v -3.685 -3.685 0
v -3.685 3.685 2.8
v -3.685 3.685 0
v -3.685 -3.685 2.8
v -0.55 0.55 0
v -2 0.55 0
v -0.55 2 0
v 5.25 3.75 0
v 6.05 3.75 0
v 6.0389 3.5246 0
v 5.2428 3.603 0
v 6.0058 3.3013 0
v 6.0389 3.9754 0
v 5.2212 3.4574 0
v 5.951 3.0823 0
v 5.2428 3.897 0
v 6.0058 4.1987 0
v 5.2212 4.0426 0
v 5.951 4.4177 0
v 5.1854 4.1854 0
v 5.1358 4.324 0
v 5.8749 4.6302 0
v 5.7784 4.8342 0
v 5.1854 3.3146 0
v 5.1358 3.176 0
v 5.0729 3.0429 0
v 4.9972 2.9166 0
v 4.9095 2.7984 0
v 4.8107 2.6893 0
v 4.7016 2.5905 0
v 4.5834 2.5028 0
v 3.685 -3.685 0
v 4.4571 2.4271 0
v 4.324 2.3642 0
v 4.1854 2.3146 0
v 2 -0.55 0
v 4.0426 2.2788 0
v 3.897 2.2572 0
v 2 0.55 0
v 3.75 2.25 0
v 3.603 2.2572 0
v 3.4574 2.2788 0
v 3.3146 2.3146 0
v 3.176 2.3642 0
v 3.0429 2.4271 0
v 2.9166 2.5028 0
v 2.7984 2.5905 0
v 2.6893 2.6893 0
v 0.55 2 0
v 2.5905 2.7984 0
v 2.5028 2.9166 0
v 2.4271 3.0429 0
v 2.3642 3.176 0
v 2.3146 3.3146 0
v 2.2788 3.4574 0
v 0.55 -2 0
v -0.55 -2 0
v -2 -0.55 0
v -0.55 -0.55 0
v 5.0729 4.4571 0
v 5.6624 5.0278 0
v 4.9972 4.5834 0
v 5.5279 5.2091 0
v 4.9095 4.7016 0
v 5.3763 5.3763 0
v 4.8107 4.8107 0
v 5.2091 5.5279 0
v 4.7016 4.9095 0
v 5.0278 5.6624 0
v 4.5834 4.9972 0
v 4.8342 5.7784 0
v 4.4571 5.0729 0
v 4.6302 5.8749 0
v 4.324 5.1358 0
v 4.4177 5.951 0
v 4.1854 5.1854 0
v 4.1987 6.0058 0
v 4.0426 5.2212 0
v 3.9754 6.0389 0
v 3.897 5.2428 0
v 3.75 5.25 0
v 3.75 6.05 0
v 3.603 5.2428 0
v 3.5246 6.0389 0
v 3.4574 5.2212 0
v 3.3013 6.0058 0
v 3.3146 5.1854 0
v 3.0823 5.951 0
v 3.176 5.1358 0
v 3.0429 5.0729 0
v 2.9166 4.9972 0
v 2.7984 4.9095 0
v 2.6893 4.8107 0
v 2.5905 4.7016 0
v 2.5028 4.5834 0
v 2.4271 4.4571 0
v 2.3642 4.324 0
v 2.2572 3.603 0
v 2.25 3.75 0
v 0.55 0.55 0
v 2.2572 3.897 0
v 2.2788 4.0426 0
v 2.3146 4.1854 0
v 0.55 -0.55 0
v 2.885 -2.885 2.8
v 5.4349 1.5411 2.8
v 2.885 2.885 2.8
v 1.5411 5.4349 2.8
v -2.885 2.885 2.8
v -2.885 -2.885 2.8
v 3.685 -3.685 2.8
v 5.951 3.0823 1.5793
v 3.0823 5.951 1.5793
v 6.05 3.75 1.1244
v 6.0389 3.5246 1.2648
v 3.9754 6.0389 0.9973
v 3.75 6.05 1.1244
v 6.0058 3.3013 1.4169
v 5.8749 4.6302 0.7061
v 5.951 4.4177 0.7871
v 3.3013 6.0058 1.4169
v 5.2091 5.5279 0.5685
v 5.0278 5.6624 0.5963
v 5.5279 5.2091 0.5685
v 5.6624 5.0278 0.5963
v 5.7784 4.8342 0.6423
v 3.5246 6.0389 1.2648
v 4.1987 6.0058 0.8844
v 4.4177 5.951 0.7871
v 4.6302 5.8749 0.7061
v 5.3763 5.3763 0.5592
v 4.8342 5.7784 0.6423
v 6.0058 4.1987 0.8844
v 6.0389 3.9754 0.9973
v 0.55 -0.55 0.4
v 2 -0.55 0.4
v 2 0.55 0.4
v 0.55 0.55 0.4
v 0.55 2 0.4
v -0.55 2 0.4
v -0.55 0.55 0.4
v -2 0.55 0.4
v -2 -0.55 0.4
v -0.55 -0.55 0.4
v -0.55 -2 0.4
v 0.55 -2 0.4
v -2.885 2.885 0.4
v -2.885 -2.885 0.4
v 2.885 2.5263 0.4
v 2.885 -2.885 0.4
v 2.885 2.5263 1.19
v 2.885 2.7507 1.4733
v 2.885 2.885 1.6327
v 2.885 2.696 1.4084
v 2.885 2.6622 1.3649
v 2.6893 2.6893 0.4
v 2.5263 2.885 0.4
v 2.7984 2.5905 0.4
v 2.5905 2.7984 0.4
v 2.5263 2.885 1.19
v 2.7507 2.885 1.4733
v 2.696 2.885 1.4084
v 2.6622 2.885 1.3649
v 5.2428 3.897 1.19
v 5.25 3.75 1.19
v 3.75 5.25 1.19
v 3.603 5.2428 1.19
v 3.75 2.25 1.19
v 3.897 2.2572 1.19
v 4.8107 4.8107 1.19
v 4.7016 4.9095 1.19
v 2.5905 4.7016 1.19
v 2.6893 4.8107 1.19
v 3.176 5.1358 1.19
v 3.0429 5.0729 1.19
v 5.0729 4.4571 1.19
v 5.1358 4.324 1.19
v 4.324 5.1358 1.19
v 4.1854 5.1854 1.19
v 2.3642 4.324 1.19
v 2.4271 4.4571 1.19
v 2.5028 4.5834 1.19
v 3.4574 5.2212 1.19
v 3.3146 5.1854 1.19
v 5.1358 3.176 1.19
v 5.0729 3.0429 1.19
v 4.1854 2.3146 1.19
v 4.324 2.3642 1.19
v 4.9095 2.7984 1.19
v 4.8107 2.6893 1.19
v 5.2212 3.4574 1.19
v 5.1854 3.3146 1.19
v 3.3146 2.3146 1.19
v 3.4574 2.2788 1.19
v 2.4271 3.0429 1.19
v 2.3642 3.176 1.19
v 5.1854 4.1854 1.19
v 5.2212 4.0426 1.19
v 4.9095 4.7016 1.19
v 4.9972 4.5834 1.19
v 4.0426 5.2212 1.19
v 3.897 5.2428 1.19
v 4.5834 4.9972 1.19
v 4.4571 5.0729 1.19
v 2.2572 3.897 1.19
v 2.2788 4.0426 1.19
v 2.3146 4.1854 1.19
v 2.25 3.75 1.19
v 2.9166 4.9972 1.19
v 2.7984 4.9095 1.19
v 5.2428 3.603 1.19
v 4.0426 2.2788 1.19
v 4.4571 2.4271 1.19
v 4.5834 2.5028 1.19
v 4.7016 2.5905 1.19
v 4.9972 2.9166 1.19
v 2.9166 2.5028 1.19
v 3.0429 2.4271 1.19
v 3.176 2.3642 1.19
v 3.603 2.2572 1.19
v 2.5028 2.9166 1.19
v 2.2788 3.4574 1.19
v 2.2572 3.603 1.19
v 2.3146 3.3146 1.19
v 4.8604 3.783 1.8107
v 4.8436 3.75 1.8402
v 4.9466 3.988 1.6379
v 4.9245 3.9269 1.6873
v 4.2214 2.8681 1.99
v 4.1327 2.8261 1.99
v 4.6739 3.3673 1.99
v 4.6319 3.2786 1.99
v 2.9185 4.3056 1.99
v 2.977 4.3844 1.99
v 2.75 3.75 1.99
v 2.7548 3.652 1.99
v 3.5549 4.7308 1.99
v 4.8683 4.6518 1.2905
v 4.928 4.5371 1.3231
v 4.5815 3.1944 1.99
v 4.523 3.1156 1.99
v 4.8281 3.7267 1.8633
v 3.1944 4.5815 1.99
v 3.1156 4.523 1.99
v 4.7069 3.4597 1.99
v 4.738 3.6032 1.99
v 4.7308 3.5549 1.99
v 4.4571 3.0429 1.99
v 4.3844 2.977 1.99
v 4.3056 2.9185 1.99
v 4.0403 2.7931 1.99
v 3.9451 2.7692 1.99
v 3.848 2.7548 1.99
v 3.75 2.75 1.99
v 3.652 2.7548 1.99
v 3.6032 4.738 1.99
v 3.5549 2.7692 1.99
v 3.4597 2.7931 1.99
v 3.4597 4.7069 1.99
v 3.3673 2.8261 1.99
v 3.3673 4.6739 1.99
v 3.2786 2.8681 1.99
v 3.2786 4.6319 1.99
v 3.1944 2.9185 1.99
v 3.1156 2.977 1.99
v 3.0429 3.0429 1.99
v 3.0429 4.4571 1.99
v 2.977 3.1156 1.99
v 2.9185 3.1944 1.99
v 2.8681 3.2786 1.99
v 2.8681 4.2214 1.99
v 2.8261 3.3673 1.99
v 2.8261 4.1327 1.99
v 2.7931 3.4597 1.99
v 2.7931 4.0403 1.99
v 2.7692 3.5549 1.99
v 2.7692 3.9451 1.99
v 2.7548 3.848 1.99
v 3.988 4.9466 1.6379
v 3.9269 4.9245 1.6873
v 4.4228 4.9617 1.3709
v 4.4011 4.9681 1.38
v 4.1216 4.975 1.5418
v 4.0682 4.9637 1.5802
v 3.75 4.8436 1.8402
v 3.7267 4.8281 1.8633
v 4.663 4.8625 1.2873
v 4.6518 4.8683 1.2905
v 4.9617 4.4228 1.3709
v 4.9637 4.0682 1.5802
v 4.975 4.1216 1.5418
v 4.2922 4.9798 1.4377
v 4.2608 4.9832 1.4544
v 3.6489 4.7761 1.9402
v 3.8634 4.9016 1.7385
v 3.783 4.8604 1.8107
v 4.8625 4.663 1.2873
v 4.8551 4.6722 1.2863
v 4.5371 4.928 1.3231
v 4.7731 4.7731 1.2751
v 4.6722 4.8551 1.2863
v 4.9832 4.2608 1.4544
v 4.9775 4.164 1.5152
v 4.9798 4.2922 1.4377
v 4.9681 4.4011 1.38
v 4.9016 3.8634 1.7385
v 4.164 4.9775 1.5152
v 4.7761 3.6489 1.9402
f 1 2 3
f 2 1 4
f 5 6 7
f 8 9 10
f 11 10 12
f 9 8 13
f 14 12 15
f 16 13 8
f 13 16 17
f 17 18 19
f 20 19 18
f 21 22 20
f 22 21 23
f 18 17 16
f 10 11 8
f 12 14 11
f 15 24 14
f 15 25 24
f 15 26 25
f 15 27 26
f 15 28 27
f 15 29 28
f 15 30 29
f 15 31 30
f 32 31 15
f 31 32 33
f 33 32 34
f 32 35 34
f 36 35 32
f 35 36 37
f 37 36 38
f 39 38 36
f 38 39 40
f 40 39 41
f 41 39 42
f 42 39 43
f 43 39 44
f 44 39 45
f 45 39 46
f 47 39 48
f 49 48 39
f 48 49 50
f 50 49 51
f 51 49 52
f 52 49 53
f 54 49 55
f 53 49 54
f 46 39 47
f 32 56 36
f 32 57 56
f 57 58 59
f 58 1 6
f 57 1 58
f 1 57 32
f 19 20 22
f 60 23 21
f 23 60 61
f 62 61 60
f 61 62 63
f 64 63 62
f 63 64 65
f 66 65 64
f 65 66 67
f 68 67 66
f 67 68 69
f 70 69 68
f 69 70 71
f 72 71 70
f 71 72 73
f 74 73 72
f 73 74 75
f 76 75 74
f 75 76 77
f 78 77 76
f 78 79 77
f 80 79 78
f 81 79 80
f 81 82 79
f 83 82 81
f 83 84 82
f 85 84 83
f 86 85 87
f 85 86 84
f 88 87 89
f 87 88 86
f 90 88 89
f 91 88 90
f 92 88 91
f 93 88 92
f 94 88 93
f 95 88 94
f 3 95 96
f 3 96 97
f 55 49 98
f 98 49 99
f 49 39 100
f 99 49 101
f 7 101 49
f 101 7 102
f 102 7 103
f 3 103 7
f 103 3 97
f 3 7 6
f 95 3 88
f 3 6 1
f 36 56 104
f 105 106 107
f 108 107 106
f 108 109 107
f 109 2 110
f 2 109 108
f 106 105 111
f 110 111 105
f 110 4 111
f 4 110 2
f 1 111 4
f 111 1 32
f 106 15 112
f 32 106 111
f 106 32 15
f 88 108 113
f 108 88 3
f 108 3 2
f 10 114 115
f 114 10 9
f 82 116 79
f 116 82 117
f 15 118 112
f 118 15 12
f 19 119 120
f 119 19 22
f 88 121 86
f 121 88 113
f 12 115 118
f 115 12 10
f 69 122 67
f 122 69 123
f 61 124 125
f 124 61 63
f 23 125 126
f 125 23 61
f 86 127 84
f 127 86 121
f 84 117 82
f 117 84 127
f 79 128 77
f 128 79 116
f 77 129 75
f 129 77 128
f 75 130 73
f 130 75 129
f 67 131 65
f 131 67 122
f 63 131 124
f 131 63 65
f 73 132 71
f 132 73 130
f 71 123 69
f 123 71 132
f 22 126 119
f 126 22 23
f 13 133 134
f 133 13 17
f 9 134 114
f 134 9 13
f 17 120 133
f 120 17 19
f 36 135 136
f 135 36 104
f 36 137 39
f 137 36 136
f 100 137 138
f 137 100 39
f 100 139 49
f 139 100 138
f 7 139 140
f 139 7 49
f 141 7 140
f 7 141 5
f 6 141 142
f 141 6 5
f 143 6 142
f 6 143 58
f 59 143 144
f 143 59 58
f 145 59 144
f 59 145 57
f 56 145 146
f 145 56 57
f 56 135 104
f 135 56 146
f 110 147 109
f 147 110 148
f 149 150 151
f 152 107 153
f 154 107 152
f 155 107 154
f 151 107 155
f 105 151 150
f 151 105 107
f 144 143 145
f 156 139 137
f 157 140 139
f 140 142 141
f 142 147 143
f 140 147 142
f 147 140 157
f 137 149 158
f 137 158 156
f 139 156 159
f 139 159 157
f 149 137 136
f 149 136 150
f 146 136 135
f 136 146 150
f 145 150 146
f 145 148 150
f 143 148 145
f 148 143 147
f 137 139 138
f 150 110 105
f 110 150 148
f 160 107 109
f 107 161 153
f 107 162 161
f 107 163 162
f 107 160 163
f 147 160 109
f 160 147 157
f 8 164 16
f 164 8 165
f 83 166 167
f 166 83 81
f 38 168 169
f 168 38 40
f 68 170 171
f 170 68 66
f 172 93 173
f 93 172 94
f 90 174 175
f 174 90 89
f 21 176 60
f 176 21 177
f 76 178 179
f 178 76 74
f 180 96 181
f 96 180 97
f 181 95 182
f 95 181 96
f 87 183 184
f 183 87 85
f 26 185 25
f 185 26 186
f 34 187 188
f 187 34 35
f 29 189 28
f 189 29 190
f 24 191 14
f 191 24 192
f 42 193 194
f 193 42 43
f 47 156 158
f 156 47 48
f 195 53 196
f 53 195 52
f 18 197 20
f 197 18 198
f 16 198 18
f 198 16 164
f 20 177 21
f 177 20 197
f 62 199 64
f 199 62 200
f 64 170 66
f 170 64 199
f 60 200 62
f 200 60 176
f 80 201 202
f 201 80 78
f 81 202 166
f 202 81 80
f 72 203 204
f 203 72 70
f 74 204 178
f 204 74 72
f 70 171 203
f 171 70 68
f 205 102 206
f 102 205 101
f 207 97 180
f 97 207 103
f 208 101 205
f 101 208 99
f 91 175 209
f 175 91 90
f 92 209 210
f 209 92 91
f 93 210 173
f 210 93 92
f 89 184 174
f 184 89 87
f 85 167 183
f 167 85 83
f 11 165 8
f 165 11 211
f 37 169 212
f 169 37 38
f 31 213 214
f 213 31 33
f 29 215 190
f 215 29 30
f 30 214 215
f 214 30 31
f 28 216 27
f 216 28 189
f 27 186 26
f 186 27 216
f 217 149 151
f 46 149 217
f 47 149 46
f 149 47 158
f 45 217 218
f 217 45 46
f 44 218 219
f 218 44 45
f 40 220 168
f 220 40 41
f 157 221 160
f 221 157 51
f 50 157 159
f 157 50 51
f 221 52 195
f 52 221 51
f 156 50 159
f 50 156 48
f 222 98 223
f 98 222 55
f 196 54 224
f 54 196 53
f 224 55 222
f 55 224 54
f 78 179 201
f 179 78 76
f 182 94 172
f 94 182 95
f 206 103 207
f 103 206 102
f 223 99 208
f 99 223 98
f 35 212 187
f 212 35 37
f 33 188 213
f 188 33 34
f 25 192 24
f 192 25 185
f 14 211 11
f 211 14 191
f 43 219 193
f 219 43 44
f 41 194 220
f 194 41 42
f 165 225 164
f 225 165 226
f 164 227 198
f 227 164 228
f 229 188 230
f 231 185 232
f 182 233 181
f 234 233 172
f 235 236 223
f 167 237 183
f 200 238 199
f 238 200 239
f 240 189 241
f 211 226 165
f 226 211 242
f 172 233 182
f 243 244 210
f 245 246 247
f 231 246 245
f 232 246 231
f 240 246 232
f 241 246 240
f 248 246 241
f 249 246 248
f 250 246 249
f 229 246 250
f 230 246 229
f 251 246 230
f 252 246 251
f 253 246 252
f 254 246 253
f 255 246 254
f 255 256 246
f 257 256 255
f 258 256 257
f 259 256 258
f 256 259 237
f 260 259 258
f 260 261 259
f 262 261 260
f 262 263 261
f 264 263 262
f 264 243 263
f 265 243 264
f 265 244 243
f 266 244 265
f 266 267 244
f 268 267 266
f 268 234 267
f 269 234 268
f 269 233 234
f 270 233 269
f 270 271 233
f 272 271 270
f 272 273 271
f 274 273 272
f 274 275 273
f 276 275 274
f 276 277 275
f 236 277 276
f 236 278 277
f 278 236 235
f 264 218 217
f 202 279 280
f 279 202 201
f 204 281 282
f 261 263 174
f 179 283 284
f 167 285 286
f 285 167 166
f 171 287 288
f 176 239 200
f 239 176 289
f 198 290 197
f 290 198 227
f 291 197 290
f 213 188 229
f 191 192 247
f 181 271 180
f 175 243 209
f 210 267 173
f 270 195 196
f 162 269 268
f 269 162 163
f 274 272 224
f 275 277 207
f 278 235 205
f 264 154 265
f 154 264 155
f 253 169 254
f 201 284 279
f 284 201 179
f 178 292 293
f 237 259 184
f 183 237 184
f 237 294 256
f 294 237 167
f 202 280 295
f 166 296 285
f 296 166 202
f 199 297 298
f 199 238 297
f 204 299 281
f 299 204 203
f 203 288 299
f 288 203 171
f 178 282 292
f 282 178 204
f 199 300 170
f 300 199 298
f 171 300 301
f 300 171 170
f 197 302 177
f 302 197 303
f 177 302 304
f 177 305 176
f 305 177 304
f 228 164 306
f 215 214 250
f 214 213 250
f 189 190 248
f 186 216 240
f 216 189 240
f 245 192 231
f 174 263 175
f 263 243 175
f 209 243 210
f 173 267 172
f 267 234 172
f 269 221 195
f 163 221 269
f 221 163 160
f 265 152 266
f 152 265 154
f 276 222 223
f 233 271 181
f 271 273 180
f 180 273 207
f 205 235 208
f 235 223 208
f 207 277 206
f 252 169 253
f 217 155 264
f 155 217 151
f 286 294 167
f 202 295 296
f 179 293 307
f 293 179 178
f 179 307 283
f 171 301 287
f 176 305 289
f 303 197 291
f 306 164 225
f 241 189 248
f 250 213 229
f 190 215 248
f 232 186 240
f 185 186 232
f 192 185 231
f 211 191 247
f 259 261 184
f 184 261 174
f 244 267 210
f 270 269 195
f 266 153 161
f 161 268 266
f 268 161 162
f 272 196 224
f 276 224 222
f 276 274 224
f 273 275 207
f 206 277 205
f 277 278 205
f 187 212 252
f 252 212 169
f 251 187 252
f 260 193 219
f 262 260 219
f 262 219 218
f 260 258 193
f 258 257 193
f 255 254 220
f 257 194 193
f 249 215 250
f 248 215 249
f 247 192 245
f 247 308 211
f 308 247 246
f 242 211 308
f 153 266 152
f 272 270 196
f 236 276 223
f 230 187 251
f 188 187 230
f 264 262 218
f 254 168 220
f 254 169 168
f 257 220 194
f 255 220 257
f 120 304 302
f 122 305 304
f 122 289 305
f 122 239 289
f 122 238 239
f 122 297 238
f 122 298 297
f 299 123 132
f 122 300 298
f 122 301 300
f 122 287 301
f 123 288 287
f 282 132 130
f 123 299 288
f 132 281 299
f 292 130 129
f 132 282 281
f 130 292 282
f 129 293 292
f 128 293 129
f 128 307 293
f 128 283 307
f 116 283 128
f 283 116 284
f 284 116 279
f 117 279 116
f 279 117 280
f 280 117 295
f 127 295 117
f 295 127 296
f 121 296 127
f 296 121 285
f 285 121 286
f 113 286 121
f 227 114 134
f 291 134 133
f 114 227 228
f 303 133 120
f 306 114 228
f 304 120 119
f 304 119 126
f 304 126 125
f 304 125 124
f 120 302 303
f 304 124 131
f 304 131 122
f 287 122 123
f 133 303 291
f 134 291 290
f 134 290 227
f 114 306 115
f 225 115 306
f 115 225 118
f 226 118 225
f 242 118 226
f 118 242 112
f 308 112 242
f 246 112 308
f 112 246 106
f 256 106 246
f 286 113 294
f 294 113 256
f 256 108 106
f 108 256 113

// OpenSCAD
// THE LEVITATOR - Goes under the keycap to provide a cusion of magnetic levitation

// AUTHOR: Riskable <riskable@youknowwhat.com>
// VERSION: 1.0 (Changelog is at the bottom)

/* NOTES:

    * The default configuration works with 4x1 through 4x2mm magnets (anything shorter than 2mm will end up stuck in there just fine--don't worry about it).
    * The default configuration will "eat" 0.4mm of your stem's cross height.  So keycaps won't be able to go all the way down (if you didn't print that part of the stem slightly longer to make up for it).  In testing, losing 0.4mm of height on the cross part of the stem makes absolutely no difference whatsoever.  The keycap still stays on just fine.  I wouldn't worry about it =)

*/

$fn = 64;

use <utils.scad>

// Configurables
LEVITATOR_THICKNESS = 0.4; // How thick the floor will be/how much of the cross part of the stem (+) gets eaten by THE LEVITATOR
WALL_THICKNESS = 0.8; // How thick around the edges you want it to be (0.8 is fine and fits under most keycaps)
STEM_TOLERANCE = 0.15; // How tight the cross-shaped cutout will be
MAGNET_THICKNESS_TOLERANCE = 0.2; // Only used with MAGNET_HEIGHT (because we have some bridging)
MAGNET_DIAMETER = 3;
MAGNET_HEIGHT = 1;
MAGNET_DISTANCE = 3.75; // Distance from the center of the stem where the magnet goes

// Constants
CHERRY_CYLINDER_DIAMETER = 5.47; // Represents the keycap's stem (female side of the +)
CHERRY_CROSS_LENGTH = 4; // Length of the - and the | in the +
// We make the cross slightly thinner than normal to keep a tight fit:
CHERRY_CROSS_THICKNESS_X = 1.1; // Width of the - and in the + (Reality: 1.31)
CHERRY_CROSS_THICKNESS_Y = 1.1; // Width of the | in the + (Reality: 1.09)

levitator(MAGNET_DIAMETER, MAGNET_HEIGHT, magnet_distance=MAGNET_DISTANCE, magnet_thickness_tolerance=MAGNET_THICKNESS_TOLERANCE, wall_thickness=WALL_THICKNESS, thickness=LEVITATOR_THICKNESS, stem_tolerance=STEM_TOLERANCE);
//levitator_double_sided(MAGNET_DIAMETER, MAGNET_HEIGHT, magnet_distance=MAGNET_DISTANCE, magnet_thickness_tolerance=MAGNET_THICKNESS_TOLERANCE, wall_thickness=WALL_THICKNESS, thickness=LEVITATOR_THICKNESS, stem_tolerance=STEM_TOLERANCE);

// TODO: Finish making this as well as making a matching void space version for top plates:
// This is for the special situations with long ass/heavy spacebars: 
BACKFORCE_LENGTH = 30; // 15mm from the center of the switch on either side
BACKFORCE_WIDTH = 11; // Needs to fit inside/under the keycap but not terribly tight--just enough to prevent it from rotating
//uplifting_jigaroo(BACKFORCE_LENGTH, BACKFORCE_WIDTH, stem_diameter=CHERRY_CYLINDER_DIAMETER, magnet_diameter=4, magnet_height=2, magnet_thickness_tolerance=0, wall_thickness=1.2);

module levitator(magnet_diameter, magnet_height, stem_type, magnet_distance=3.75, magnet_thickness_tolerance=MAGNET_THICKNESS_TOLERANCE, wall_thickness=0.9, thickness=1, stem_tolerance=0.15) {
    // NOTE: stem_tolerance is the keycap stem; not the switch stem
    height = 2 + wall_thickness; // Just enough to grab the stem
    difference() {
        translate([0,0,height/2]) union() {
            // Main body of the thing
            hull() {
                // NOTE: The square-ish walls around the stem area are just to provide rigidity
                cube([
                    CHERRY_CYLINDER_DIAMETER+wall_thickness*2+stem_tolerance*2,
                    CHERRY_CYLINDER_DIAMETER+wall_thickness*2+stem_tolerance*2,
                    height], center=true);
                translate([magnet_distance,magnet_distance,0])
                    cylinder(d=magnet_diameter+wall_thickness*2, h=height, center=true);
            }
            // Body of the part that holds the magnet (hollowed out below)
            translate([magnet_distance,magnet_distance,0])
                cylinder(d=magnet_diameter+wall_thickness*2, h=height, center=true);
        }
        translate([0,0,-5]) cherry_cross(length=10); // Just don't die on it
        translate([0,0,height/2+thickness+wall_thickness/2]) // Stem cutout
            cube([
                CHERRY_CYLINDER_DIAMETER+stem_tolerance*2,
                CHERRY_CYLINDER_DIAMETER+stem_tolerance*2,
                height+wall_thickness], center=true);
        translate([magnet_distance,magnet_distance,(magnet_height+magnet_thickness_tolerance)/2-0.01]) {
            cylinder(d=magnet_diameter, h=magnet_height+magnet_thickness_tolerance, center=true);
            // So we can pop the magnet out if we screw up which pole is facing down:
//            rotate([0,0,45])
//                cube([magnet_diameter/3,magnet_diameter/3,100], center=true);
        }
        // Make an angled hole in the top that stops the magnet from coming out while also letting you push it out if needed to flip it around
        translate([magnet_distance,magnet_distance,wall_thickness/2+(magnet_height+magnet_thickness_tolerance)-0.01])
            cylinder(d1=magnet_diameter, d2=magnet_diameter/1.5, h=wall_thickness, center=true);
        // Cut off a few bits here and there so it can fit under more keycaps
//        translate([magnet_distance*2+wall_thickness/1.25,magnet_distance*1.25,magnet_diameter/2])
//            cube([magnet_diameter, magnet_diameter*2, magnet_diameter*2], center=true);
//        translate([magnet_distance*1.25,magnet_distance*2+wall_thickness/1.25,magnet_diameter/2])
//            cube([magnet_diameter*2, magnet_diameter, magnet_diameter*2], center=true);
        translate([magnet_distance*1.5,magnet_distance*1.5,magnet_diameter/1.35])
            rotate([0,-50,45])
                cube([magnet_diameter, magnet_diameter*2, magnet_diameter*2], center=true);
    }
}

module levitator_double_sided(magnet_diameter, magnet_height, magnet_distance=3.75, magnet_thickness_tolerance=MAGNET_THICKNESS_TOLERANCE, wall_thickness=0.9, thickness=1, stem_tolerance=0.15) {
    // NOTE: stem_tolerance is the keycap stem; not the switch stem
    height = 2 + wall_thickness; // Just enough to grab the stem
    difference() {
        translate([0,0,height/2]) union() {
            // Main body of the thing
            hull() {
                // NOTE: The square-ish walls around the stem area are just to provide rigidity
                cube([
                    CHERRY_CYLINDER_DIAMETER+wall_thickness*2+stem_tolerance*2,
                    CHERRY_CYLINDER_DIAMETER+wall_thickness*2+stem_tolerance*2,
                    height], center=true);
                translate([magnet_distance,magnet_distance,0])
                    cylinder(d=magnet_diameter+wall_thickness*2, h=height, center=true);
                translate([-magnet_distance,-magnet_distance,0])
                    cylinder(d=magnet_diameter+wall_thickness*2, h=height, center=true);
            }
            // Body of the part that holds the magnet (hollowed out below)
            translate([magnet_distance,magnet_distance,0])
                cylinder(d=magnet_diameter+wall_thickness*2, h=height, center=true);
        }
        translate([0,0,-5]) cherry_cross(length=10); // Just don't die on it
        translate([0,0,height/2+thickness+wall_thickness/2]) // Stem cutout
            cube([
                CHERRY_CYLINDER_DIAMETER+stem_tolerance*2,
                CHERRY_CYLINDER_DIAMETER+stem_tolerance*2,
                height+wall_thickness], center=true);
        translate([magnet_distance,magnet_distance,(magnet_height+magnet_thickness_tolerance)/2-0.01])
            cylinder(d=magnet_diameter, h=magnet_height+magnet_thickness_tolerance, center=true);
        translate([-magnet_distance,-magnet_distance,(magnet_height+magnet_thickness_tolerance)/2-0.01])
            cylinder(d=magnet_diameter, h=magnet_height+magnet_thickness_tolerance, center=true);
        // Make an angled hole in the top that stops the magnet from coming out while also letting you push it out if needed to flip it around
        translate([magnet_distance,magnet_distance,wall_thickness/2+(magnet_height+magnet_thickness_tolerance)-0.01])
            cylinder(d1=magnet_diameter, d2=magnet_diameter/1.5, h=wall_thickness, center=true);
        translate([-magnet_distance,-magnet_distance,wall_thickness/2+(magnet_height+magnet_thickness_tolerance)-0.01])
            cylinder(d1=magnet_diameter, d2=magnet_diameter/1.5, h=wall_thickness, center=true);
        // Cut off a few bits here and there so it can fit under more keycaps
        translate([magnet_distance*1.5,magnet_distance*1.5,magnet_diameter/1.35])
            rotate([0,-50,45])
                cube([magnet_diameter, magnet_diameter*2, magnet_diameter*2], center=true);
        translate([-magnet_distance*1.5,-magnet_distance*1.5,magnet_diameter/1.35])
            rotate([0,50,45])
                cube([magnet_diameter, magnet_diameter*2, magnet_diameter*2], center=true);
    }
}

// This is a magnetic levitation backward-force generator that can be placed under any given (long) keycap to cusion the bottom and provide a backwards (upwards) force to ease the burden of bringing a heavy keycap back up.  In other words, it's for (heavy) spacebars.  NOTE: The *length* is really just the distance between the center of the magnets--not the actual length of the thing.
// NOTE: Requires matching magnets (same locations underneath) in the keyboard plate!
module uplifting_jigaroo(length, width, stem_diameter=CHERRY_CYLINDER_DIAMETER, magnet_diameter=4, magnet_height=2, magnet_thickness_tolerance=0, wall_thickness=1.2) {
    // NOTE: We make this pretty thick so it's stable--even though that adds extra weight
    difference() {
        cube([
            length+magnet_diameter+magnet_thickness_tolerance*2+wall_thickness*2,
            width,
            magnet_height+wall_thickness], center=true);
        cube([stem_diameter,stem_diameter,wall_thickness*8], center=true);
        translate([length/2,0,magnet_height/2-wall_thickness/4])
            cylinder(d=magnet_diameter+magnet_thickness_tolerance*2, h=magnet_height+0.01, center=true);
        translate([-length/2,0,magnet_height/2-wall_thickness/4])
            cylinder(d=magnet_diameter+magnet_thickness_tolerance*2, h=magnet_height+0.01, center=true);
    }
}

// This makes the + bit that slides *in* to a Cherry MX style keycap:
module cherry_cross(length=CHERRY_CROSS_LENGTH, y_adjust=0, x_adjust=0) {
    linear_extrude(height=length) {
        square([CHERRY_CROSS_THICKNESS_X+x_adjust, CHERRY_CROSS_LENGTH], center=true);
        square([CHERRY_CROSS_LENGTH, CHERRY_CROSS_THICKNESS_Y+y_adjust], center=true);
    }
}
